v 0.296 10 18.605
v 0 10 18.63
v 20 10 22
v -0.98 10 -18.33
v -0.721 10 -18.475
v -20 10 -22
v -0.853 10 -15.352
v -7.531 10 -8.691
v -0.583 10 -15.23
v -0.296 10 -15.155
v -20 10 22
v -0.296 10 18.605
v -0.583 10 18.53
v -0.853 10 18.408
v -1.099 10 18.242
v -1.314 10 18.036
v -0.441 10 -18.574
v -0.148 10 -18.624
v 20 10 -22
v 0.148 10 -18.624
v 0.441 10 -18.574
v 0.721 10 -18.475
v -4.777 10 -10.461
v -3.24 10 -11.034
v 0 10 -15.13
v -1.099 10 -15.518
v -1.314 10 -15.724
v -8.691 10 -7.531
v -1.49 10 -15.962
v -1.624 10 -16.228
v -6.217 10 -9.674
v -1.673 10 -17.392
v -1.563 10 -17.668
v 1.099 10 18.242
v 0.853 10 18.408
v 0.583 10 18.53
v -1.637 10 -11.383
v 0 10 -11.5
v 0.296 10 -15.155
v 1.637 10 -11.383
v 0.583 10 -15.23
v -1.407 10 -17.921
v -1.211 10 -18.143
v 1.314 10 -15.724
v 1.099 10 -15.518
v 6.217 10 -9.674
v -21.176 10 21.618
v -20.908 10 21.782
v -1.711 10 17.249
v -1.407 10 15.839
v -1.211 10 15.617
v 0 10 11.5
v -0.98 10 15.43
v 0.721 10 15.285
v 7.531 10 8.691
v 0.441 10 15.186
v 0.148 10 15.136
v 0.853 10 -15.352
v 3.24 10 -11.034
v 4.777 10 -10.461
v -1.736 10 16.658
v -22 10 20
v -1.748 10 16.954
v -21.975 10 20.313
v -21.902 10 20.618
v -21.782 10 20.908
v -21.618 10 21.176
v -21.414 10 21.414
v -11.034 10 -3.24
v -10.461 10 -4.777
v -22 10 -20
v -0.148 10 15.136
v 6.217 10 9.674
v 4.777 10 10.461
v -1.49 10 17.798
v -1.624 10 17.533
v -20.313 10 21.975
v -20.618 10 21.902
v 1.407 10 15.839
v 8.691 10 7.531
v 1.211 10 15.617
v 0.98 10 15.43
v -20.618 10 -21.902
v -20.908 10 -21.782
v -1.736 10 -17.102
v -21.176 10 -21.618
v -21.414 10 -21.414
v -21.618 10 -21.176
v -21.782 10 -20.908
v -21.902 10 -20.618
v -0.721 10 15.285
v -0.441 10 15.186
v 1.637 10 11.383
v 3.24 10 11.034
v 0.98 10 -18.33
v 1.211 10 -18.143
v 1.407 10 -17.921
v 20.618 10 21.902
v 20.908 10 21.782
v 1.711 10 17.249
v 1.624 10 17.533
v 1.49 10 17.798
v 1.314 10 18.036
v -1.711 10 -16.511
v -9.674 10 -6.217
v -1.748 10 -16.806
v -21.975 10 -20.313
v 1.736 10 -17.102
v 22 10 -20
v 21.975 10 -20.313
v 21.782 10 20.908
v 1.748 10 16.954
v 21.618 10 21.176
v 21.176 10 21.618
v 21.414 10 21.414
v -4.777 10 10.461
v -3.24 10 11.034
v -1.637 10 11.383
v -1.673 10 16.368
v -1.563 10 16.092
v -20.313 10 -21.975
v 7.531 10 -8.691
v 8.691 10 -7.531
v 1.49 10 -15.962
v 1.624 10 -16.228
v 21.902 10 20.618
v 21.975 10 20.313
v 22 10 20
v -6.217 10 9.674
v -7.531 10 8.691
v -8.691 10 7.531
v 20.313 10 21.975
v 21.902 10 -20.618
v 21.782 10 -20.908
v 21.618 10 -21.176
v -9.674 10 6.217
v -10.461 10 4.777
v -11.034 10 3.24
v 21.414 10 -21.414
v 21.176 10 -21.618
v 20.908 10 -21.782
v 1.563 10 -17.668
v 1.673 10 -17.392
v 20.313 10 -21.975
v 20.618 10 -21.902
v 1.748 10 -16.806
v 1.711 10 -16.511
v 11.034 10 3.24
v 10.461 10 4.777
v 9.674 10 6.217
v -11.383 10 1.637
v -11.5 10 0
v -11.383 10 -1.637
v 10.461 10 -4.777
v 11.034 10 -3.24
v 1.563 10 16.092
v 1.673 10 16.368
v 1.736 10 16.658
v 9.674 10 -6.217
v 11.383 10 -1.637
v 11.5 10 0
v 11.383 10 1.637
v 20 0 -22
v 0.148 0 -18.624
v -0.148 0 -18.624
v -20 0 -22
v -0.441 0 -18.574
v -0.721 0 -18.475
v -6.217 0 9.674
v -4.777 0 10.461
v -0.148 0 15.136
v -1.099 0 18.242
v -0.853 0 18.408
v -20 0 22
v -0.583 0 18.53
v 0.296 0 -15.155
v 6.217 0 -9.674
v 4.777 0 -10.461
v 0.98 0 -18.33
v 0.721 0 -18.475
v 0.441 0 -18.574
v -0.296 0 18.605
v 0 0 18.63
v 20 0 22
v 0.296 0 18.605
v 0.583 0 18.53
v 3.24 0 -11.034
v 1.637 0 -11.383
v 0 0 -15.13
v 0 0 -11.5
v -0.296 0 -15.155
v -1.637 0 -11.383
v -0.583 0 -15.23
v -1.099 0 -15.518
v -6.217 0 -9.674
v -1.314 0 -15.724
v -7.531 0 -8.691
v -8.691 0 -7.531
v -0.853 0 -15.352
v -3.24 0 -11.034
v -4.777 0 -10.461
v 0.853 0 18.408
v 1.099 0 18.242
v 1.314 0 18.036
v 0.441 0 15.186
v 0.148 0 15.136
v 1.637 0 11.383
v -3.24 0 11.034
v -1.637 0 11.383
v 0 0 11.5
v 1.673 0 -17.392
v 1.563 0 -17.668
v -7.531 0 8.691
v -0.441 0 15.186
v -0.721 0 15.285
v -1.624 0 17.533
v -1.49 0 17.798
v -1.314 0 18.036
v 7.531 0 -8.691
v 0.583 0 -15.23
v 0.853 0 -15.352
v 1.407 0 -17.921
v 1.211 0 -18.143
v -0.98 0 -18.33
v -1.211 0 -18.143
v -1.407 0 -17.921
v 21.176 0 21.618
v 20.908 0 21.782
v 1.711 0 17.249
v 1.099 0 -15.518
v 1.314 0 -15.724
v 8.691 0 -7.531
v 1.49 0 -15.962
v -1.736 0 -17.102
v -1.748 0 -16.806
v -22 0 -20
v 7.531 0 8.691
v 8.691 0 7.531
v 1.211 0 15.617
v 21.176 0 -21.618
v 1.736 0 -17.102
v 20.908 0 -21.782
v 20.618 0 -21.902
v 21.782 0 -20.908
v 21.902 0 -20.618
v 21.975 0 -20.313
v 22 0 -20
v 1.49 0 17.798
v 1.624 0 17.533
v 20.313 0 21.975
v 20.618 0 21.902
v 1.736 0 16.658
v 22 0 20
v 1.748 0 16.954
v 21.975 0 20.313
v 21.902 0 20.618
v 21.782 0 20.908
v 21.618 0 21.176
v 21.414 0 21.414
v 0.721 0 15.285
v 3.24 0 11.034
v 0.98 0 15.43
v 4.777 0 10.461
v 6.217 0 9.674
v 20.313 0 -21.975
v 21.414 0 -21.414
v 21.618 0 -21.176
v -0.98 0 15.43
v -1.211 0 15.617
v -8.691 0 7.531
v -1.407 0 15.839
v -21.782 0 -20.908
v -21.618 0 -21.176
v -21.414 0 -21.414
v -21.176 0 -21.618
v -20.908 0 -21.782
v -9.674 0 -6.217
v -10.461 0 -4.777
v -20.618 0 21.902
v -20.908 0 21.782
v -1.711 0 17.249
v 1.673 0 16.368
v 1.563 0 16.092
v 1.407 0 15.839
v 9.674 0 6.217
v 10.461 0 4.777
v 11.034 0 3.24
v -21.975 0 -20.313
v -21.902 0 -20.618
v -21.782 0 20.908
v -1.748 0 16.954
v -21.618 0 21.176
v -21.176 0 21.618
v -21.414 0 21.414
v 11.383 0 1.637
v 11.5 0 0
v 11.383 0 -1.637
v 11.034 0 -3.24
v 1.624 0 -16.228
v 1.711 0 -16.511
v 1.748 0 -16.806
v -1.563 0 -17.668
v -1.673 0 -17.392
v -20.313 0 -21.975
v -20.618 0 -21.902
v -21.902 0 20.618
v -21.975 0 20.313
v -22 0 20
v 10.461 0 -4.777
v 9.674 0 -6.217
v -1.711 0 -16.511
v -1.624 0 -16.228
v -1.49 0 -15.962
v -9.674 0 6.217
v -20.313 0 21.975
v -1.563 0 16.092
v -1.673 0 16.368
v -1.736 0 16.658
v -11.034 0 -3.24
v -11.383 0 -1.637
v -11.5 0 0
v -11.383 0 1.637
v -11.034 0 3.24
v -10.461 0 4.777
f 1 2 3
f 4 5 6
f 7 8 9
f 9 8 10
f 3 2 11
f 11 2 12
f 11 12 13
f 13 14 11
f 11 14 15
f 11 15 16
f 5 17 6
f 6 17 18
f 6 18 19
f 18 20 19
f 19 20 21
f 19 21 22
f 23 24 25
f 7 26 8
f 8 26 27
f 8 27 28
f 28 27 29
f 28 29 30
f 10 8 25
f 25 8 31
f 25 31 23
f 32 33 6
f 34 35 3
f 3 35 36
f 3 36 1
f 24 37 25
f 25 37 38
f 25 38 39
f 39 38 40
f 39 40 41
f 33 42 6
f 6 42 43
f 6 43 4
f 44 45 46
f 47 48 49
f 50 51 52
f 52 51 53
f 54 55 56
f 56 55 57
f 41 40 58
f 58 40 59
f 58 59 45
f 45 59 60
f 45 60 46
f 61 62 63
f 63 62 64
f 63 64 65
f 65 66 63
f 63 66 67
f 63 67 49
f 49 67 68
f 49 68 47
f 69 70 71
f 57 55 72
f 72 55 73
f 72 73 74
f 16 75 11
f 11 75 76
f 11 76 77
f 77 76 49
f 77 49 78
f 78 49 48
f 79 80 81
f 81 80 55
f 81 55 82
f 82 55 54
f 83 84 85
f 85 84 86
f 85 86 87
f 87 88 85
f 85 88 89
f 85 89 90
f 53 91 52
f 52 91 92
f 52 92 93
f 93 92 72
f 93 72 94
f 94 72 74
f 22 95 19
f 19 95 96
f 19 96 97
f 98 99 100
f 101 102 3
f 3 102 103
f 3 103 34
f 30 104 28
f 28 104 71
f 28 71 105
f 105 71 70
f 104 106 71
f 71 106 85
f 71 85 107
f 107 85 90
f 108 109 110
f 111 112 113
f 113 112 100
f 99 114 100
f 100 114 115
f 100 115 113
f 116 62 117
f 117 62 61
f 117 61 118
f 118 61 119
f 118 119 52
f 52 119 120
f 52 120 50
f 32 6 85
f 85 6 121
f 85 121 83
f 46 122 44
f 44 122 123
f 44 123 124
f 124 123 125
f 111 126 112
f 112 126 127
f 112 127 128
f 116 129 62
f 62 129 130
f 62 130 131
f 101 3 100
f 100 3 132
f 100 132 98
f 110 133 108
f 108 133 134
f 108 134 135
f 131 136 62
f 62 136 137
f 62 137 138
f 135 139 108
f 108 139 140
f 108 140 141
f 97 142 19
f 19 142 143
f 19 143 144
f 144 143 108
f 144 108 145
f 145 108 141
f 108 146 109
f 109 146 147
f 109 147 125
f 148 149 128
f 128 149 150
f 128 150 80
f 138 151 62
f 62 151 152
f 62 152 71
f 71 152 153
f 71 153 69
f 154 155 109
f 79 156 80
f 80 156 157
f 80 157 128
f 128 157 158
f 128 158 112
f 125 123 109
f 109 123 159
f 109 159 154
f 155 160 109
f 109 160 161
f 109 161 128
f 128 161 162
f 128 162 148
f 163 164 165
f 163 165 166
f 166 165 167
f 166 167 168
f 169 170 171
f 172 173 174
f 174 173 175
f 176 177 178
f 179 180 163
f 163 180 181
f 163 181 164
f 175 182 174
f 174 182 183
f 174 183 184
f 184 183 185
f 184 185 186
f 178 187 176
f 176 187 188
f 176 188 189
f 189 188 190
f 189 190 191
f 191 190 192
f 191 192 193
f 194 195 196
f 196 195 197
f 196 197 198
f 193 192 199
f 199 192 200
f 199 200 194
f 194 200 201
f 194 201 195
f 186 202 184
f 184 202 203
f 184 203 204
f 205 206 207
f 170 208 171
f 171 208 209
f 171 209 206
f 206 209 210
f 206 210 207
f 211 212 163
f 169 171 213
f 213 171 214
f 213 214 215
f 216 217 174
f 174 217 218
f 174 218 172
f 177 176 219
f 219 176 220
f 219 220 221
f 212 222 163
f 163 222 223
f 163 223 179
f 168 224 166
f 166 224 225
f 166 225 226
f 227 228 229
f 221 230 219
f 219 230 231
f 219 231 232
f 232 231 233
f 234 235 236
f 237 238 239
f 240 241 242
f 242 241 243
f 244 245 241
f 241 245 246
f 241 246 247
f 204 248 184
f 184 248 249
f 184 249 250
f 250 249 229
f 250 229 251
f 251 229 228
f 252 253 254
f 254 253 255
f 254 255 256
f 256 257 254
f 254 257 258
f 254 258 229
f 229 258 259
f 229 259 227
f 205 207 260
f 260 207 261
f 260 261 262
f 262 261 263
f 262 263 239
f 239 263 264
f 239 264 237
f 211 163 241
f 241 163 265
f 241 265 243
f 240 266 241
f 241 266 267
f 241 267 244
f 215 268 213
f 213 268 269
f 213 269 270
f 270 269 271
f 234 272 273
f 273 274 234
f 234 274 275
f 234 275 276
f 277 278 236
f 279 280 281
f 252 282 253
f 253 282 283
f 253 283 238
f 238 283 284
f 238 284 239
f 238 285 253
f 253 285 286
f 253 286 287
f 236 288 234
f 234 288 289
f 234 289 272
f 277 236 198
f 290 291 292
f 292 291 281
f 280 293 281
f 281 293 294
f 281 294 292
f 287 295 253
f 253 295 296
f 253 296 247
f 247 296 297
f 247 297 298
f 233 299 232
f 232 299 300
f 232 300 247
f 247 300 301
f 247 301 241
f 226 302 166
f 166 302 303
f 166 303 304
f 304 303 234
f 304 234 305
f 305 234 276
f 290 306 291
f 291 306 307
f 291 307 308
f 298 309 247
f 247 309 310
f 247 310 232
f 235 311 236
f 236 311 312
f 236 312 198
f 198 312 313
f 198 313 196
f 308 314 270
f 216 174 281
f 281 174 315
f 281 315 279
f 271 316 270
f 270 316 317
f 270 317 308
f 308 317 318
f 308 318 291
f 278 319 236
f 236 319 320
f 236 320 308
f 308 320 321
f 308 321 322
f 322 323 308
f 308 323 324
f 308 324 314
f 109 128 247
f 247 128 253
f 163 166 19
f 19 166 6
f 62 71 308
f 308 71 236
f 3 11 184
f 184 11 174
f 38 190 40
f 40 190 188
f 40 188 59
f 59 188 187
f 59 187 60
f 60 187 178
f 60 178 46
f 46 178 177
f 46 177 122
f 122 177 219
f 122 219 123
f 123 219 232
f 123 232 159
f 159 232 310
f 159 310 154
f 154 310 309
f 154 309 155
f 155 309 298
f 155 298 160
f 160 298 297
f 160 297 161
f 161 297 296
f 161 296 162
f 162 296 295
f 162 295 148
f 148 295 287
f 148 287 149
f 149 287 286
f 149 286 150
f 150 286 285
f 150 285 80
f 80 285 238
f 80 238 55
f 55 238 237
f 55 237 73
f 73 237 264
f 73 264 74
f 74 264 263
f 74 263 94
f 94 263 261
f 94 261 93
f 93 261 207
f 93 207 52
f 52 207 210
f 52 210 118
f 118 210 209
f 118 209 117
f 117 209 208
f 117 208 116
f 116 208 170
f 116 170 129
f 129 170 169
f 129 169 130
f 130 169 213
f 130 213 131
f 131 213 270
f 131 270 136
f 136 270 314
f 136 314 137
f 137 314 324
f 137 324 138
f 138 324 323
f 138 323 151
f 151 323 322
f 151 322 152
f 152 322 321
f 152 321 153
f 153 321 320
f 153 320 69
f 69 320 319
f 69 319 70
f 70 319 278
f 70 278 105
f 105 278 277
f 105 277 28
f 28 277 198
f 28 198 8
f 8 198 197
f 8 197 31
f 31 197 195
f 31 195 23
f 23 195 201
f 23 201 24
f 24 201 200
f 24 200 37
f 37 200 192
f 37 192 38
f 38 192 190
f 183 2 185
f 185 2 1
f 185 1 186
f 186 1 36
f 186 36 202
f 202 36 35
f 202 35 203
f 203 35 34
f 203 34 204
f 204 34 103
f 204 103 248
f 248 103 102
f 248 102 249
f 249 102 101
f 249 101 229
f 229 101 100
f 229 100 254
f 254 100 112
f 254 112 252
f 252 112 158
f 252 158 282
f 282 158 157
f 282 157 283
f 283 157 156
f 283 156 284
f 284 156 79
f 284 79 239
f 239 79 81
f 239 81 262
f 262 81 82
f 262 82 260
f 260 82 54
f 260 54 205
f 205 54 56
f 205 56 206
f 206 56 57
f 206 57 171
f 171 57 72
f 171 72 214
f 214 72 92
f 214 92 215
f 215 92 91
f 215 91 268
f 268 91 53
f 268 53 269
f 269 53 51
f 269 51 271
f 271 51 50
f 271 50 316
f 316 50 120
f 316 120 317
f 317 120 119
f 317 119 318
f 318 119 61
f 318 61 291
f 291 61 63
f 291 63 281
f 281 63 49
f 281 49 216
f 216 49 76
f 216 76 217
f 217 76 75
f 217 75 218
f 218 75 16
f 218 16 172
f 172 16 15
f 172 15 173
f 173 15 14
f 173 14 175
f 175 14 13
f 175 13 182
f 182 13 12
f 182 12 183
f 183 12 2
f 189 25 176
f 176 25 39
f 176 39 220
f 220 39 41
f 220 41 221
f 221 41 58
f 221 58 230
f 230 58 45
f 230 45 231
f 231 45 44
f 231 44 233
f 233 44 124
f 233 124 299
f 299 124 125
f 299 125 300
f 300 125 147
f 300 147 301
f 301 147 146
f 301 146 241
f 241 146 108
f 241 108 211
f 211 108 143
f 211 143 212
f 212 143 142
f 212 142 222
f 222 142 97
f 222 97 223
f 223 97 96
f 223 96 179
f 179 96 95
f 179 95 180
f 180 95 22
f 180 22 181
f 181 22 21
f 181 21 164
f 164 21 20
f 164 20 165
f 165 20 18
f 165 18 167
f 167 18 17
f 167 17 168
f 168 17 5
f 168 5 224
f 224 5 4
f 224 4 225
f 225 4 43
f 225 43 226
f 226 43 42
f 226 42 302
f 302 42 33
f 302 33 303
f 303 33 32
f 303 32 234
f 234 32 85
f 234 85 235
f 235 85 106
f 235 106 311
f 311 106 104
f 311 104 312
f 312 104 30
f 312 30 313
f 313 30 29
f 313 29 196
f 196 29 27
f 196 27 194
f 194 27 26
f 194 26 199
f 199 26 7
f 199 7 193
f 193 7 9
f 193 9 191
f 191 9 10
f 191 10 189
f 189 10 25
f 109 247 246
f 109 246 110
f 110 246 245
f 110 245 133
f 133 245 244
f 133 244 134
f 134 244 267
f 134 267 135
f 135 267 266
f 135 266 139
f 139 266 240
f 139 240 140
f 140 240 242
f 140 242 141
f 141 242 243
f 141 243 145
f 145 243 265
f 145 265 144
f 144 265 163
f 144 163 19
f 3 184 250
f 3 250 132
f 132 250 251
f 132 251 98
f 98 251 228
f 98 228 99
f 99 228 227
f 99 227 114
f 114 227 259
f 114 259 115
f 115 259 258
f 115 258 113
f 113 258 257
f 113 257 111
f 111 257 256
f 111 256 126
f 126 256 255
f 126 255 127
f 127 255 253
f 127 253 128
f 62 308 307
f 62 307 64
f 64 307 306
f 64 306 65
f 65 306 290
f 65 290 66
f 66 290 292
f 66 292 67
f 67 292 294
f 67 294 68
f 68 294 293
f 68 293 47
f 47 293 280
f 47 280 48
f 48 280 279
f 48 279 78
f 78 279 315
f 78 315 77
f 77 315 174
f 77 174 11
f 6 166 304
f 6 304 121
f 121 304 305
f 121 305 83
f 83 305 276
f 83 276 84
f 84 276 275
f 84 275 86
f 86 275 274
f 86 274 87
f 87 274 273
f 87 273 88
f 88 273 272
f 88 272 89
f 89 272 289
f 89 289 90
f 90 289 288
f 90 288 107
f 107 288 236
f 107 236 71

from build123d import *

# Parameters (mm, degrees)
CROQUIS1_W              = 44
CROQUIS1_H              = 44
CROQUIS1_R              = 11.5
SALIENTE_EXTRUIR1_DEPTH = 10
CROQUIS2_R              = 1.75
CORTAR_EXTRUIR1_DEPTH   = 33.680269277
REDONDEO1_R             = 2


with BuildPart() as part:
    # Croquis1 → Saliente-Extruir1 (new body)
    with BuildSketch(Plane(origin=(0, 0, 0), x_dir=(1, 0, 0), z_dir=(0, 1, 0))):
        Rectangle(CROQUIS1_W, CROQUIS1_H)
        with Locations(Location((0, 0, 0), (0, 0, 270))):
            Circle(CROQUIS1_R, mode=Mode.SUBTRACT)
    extrude(amount=SALIENTE_EXTRUIR1_DEPTH)

    # Croquis2 → Cortar-Extruir1 (cut, through all)
    with BuildSketch(Plane(origin=(0, 10, 0), x_dir=(1, 0, 0), z_dir=(0, 1, 0))):
        with Locations(Location((0, 16.88, 0), (0, 0, 270))):
            Circle(CROQUIS2_R)
        with Locations(Location((0, -16.88, 0), (0, 0, 270))):
            Circle(CROQUIS2_R)
    extrude(amount=-CORTAR_EXTRUIR1_DEPTH, mode=Mode.SUBTRACT)

    # Redondeo1
    redondeo1_edges = [part.edges().sort_by_distance(p)[0] for p in [
        (22, 5, 22),
        (-22, 5, 22),
        (-22, 5, -22),
        (22, 5, -22),
    ]]
    fillet(redondeo1_edges, radius=REDONDEO1_R)


solid = part.part
